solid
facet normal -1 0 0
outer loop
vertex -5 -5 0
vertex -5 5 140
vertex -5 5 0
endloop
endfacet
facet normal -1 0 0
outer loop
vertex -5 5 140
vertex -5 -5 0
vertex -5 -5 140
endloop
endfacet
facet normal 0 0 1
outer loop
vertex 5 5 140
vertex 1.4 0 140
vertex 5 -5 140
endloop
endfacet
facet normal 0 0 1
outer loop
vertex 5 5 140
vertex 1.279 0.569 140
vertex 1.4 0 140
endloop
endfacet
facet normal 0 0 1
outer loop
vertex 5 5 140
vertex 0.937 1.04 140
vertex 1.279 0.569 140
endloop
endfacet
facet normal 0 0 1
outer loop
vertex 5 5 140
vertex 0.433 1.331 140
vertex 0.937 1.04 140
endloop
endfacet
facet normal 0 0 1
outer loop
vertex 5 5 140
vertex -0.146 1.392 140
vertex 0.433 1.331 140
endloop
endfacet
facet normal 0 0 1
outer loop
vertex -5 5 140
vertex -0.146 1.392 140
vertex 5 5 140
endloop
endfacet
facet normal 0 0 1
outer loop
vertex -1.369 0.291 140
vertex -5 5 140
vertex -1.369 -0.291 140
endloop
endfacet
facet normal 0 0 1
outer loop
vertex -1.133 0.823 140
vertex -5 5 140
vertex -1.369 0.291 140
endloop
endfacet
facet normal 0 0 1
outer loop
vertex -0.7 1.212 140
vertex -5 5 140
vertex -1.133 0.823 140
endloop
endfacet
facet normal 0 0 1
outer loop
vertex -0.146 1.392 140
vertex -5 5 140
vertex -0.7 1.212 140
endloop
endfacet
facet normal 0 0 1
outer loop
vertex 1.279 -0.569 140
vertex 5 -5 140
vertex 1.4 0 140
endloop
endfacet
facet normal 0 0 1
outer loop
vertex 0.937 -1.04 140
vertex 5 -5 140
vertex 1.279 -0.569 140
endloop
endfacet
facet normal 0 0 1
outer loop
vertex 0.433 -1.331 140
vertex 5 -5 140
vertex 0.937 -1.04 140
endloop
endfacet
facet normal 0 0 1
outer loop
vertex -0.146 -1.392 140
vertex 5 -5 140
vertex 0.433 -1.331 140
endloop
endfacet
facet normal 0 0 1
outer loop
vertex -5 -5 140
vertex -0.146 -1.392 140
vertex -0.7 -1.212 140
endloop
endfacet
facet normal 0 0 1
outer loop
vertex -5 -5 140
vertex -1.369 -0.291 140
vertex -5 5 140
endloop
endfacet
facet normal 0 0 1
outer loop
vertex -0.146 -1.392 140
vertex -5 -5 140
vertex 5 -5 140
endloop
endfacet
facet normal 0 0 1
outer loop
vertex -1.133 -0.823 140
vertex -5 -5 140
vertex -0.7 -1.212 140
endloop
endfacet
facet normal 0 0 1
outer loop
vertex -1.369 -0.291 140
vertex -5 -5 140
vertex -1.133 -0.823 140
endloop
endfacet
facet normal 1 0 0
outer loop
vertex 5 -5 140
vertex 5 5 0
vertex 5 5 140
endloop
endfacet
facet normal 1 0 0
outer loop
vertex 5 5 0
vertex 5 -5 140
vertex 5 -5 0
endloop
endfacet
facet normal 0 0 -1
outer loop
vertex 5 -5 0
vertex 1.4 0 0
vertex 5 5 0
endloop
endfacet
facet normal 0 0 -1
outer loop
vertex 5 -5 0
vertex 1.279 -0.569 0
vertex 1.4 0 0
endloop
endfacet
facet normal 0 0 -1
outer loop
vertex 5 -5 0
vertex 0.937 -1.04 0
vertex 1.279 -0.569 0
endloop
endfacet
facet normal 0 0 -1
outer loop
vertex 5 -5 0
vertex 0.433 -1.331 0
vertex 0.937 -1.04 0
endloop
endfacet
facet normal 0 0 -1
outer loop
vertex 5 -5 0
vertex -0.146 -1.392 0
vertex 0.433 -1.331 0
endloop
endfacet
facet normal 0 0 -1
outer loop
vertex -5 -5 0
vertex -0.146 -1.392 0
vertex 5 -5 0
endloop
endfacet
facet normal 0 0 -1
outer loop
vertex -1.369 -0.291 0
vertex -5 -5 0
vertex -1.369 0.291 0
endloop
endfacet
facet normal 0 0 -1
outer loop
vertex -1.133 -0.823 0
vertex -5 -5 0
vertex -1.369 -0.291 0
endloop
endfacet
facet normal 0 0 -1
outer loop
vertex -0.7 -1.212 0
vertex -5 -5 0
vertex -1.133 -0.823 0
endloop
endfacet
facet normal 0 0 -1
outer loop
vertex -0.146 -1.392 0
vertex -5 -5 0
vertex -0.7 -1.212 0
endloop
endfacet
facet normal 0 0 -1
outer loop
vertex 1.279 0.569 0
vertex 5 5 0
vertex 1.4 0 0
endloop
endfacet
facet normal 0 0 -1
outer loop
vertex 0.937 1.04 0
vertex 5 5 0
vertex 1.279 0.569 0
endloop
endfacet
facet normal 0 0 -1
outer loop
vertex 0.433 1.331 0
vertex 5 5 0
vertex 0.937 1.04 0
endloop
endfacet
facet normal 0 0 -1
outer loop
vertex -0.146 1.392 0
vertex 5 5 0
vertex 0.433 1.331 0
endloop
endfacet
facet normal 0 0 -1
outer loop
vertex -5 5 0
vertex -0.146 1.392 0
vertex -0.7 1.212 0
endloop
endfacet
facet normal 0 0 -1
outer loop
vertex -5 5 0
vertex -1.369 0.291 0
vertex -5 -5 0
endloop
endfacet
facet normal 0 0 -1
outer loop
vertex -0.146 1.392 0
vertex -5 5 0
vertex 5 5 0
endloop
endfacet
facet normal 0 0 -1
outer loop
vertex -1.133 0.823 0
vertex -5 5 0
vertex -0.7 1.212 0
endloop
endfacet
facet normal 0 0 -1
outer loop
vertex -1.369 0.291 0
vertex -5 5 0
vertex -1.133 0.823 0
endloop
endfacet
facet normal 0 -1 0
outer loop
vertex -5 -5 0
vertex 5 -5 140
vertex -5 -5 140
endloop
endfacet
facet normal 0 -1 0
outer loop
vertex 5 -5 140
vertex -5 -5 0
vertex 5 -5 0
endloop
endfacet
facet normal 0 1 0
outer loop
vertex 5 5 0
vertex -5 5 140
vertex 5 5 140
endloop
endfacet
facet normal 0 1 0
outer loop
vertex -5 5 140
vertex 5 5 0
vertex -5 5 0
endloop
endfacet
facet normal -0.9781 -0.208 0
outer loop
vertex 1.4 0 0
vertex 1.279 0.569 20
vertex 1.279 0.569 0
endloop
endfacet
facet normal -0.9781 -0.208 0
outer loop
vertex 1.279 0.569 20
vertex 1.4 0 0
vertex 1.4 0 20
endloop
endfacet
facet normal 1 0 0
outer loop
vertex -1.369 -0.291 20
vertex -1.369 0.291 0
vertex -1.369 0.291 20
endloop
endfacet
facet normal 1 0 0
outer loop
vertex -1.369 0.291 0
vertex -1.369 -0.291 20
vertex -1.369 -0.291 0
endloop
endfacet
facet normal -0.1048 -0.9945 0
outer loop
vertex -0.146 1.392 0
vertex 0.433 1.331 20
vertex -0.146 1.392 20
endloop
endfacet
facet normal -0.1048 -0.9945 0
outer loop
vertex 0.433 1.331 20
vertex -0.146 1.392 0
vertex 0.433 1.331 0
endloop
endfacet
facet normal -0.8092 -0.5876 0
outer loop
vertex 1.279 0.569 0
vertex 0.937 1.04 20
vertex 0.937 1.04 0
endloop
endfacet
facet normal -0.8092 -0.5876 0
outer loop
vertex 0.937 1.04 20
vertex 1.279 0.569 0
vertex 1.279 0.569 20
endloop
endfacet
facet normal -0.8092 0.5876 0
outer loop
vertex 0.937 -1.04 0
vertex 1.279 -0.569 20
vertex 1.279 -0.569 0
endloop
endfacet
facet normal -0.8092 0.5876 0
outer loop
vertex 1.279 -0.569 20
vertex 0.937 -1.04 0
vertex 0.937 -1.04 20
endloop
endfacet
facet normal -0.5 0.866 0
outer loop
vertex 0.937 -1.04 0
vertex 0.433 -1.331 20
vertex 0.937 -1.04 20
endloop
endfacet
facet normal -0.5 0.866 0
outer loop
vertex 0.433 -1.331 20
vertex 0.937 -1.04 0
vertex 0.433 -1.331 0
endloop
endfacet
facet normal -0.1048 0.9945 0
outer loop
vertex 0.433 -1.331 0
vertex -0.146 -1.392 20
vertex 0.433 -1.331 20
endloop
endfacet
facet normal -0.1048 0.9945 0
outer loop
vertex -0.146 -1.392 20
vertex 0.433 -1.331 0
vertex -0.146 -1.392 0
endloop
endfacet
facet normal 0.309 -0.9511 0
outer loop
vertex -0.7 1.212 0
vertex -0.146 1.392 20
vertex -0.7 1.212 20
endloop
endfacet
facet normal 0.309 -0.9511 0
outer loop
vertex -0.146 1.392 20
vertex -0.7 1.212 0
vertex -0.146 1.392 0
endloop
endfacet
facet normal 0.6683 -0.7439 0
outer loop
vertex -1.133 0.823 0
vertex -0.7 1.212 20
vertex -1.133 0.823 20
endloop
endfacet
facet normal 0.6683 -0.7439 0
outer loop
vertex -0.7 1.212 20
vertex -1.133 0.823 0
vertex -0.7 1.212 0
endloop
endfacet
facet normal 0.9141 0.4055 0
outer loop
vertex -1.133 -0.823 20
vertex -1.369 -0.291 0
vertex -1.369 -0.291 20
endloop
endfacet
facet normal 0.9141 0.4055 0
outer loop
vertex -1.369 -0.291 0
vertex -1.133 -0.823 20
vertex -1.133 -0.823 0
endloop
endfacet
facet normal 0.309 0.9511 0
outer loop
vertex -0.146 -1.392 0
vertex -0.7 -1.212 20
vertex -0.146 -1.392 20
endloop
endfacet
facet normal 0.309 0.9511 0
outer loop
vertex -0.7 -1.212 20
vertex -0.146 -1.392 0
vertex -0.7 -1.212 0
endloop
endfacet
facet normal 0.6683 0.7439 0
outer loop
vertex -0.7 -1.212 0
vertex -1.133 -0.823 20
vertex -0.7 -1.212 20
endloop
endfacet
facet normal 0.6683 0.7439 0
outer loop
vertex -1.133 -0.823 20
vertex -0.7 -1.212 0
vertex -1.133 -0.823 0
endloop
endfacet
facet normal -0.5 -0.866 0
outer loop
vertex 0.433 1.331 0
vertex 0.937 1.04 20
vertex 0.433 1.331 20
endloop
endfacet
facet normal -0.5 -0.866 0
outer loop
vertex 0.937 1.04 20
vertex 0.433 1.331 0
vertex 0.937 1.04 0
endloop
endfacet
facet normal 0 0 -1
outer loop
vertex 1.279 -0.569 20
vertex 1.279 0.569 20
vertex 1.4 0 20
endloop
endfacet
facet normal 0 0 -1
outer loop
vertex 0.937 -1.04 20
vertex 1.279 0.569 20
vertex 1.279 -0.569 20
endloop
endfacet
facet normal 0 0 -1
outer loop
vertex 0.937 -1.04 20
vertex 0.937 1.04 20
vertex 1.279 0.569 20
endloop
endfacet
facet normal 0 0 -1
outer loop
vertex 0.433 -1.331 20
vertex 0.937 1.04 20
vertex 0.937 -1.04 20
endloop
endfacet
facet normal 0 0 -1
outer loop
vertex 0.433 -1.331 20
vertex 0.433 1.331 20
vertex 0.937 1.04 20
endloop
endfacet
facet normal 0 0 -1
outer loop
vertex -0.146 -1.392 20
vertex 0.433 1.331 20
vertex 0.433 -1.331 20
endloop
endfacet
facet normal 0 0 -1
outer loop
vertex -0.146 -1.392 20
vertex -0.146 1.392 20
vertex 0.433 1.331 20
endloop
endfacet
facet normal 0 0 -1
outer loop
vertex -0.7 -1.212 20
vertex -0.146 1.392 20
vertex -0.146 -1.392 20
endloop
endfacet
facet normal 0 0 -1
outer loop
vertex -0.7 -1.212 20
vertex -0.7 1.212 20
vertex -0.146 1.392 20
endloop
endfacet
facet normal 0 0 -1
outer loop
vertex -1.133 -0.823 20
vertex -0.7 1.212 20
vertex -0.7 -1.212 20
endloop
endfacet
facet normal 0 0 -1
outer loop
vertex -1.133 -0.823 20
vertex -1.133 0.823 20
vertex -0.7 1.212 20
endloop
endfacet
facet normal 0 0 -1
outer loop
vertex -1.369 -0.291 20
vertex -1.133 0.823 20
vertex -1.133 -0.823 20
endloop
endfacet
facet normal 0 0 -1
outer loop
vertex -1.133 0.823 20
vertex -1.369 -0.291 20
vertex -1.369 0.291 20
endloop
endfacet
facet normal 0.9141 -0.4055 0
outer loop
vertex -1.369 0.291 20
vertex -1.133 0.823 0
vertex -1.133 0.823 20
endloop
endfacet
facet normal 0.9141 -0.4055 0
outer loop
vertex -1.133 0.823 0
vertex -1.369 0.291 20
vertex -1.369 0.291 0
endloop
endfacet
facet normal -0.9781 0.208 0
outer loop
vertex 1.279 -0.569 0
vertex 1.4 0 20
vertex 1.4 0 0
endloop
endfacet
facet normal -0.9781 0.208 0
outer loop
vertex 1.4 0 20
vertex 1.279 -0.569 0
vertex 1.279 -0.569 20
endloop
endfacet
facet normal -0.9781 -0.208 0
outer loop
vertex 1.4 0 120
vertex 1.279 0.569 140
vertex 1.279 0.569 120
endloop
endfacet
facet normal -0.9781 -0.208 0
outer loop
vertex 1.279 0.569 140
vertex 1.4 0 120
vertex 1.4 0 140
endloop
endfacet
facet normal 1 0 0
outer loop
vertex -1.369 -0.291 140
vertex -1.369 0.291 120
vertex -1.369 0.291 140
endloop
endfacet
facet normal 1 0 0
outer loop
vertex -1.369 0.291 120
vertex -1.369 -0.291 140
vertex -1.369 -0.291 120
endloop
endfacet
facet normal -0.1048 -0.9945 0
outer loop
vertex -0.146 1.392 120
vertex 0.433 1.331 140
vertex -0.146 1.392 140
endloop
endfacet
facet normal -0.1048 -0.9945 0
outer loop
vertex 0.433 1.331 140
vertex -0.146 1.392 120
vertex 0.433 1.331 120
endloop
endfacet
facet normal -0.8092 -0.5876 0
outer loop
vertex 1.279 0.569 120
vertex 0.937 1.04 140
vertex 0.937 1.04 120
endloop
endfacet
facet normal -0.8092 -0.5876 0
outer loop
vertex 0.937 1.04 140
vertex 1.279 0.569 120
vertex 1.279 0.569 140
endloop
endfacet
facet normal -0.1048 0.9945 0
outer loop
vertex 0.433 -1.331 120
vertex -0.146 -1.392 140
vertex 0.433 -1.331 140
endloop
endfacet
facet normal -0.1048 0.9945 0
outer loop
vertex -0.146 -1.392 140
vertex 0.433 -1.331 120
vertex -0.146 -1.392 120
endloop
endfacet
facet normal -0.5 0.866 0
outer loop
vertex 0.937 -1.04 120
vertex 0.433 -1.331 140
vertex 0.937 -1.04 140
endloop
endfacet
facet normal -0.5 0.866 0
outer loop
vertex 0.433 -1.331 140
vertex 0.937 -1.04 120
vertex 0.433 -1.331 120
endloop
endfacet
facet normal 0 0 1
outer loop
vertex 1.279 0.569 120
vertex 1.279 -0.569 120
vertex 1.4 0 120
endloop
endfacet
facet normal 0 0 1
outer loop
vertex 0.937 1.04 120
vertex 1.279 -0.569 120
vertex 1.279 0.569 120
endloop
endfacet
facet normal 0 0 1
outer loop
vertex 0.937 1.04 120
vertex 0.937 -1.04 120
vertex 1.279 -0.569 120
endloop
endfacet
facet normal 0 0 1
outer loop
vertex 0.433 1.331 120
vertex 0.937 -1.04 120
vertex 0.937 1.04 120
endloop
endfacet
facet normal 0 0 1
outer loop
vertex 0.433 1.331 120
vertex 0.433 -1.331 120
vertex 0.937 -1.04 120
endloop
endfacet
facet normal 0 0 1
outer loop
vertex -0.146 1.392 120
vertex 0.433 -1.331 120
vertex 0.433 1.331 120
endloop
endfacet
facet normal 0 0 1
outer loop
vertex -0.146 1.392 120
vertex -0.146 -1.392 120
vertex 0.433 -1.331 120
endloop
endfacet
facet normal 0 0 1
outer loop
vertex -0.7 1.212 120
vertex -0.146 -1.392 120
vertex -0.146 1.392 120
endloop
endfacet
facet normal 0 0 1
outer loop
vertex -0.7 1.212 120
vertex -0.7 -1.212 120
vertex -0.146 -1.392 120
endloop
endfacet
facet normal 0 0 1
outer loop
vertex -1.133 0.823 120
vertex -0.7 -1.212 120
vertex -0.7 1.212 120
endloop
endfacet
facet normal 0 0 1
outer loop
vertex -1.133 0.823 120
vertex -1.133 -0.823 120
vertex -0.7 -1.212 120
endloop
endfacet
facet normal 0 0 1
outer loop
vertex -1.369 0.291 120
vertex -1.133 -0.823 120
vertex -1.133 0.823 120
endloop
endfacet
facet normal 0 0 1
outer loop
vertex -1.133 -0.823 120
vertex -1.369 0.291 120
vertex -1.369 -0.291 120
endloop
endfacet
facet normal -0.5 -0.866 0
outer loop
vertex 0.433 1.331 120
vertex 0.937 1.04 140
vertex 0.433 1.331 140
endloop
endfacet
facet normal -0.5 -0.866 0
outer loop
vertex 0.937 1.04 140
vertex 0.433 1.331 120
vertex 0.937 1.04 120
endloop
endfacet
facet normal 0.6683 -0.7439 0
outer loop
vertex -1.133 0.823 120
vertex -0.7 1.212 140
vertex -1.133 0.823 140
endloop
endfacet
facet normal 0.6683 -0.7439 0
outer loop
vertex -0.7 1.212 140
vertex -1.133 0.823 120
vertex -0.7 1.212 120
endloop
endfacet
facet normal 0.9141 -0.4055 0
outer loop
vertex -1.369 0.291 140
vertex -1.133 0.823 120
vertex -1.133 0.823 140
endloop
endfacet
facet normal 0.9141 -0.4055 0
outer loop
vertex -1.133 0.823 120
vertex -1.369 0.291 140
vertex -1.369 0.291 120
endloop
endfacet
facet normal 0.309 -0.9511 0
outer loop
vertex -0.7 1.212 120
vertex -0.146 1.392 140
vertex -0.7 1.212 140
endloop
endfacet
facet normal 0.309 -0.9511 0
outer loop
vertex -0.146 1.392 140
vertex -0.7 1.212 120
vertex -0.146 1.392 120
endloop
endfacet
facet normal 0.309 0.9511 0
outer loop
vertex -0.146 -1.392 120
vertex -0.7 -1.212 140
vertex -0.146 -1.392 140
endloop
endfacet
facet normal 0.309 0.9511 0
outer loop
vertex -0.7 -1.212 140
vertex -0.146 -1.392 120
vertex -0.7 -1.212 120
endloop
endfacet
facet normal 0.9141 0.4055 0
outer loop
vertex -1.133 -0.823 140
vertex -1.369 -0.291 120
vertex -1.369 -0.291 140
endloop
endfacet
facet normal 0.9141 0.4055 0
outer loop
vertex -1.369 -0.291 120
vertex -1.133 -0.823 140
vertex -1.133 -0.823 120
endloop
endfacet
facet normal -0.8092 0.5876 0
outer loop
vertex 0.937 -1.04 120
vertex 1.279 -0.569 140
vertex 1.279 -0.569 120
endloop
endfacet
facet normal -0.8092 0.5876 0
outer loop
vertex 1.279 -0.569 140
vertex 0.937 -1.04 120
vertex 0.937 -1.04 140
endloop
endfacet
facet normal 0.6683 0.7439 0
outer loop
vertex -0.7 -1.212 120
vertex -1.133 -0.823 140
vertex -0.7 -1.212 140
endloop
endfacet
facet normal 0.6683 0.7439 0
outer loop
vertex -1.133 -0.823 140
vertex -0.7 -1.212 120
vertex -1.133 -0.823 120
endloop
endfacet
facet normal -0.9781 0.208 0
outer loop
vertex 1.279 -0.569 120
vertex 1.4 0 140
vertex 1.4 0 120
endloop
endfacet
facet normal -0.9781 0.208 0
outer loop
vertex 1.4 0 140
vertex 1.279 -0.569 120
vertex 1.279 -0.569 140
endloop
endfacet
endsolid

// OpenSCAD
$fn=15;
difference(){
translate([-5,-5,0])cube([10,10,140]);
cylinder(d=2.8,h=20);
translate([0,0,120])cylinder(d=2.8,h=20);
}
